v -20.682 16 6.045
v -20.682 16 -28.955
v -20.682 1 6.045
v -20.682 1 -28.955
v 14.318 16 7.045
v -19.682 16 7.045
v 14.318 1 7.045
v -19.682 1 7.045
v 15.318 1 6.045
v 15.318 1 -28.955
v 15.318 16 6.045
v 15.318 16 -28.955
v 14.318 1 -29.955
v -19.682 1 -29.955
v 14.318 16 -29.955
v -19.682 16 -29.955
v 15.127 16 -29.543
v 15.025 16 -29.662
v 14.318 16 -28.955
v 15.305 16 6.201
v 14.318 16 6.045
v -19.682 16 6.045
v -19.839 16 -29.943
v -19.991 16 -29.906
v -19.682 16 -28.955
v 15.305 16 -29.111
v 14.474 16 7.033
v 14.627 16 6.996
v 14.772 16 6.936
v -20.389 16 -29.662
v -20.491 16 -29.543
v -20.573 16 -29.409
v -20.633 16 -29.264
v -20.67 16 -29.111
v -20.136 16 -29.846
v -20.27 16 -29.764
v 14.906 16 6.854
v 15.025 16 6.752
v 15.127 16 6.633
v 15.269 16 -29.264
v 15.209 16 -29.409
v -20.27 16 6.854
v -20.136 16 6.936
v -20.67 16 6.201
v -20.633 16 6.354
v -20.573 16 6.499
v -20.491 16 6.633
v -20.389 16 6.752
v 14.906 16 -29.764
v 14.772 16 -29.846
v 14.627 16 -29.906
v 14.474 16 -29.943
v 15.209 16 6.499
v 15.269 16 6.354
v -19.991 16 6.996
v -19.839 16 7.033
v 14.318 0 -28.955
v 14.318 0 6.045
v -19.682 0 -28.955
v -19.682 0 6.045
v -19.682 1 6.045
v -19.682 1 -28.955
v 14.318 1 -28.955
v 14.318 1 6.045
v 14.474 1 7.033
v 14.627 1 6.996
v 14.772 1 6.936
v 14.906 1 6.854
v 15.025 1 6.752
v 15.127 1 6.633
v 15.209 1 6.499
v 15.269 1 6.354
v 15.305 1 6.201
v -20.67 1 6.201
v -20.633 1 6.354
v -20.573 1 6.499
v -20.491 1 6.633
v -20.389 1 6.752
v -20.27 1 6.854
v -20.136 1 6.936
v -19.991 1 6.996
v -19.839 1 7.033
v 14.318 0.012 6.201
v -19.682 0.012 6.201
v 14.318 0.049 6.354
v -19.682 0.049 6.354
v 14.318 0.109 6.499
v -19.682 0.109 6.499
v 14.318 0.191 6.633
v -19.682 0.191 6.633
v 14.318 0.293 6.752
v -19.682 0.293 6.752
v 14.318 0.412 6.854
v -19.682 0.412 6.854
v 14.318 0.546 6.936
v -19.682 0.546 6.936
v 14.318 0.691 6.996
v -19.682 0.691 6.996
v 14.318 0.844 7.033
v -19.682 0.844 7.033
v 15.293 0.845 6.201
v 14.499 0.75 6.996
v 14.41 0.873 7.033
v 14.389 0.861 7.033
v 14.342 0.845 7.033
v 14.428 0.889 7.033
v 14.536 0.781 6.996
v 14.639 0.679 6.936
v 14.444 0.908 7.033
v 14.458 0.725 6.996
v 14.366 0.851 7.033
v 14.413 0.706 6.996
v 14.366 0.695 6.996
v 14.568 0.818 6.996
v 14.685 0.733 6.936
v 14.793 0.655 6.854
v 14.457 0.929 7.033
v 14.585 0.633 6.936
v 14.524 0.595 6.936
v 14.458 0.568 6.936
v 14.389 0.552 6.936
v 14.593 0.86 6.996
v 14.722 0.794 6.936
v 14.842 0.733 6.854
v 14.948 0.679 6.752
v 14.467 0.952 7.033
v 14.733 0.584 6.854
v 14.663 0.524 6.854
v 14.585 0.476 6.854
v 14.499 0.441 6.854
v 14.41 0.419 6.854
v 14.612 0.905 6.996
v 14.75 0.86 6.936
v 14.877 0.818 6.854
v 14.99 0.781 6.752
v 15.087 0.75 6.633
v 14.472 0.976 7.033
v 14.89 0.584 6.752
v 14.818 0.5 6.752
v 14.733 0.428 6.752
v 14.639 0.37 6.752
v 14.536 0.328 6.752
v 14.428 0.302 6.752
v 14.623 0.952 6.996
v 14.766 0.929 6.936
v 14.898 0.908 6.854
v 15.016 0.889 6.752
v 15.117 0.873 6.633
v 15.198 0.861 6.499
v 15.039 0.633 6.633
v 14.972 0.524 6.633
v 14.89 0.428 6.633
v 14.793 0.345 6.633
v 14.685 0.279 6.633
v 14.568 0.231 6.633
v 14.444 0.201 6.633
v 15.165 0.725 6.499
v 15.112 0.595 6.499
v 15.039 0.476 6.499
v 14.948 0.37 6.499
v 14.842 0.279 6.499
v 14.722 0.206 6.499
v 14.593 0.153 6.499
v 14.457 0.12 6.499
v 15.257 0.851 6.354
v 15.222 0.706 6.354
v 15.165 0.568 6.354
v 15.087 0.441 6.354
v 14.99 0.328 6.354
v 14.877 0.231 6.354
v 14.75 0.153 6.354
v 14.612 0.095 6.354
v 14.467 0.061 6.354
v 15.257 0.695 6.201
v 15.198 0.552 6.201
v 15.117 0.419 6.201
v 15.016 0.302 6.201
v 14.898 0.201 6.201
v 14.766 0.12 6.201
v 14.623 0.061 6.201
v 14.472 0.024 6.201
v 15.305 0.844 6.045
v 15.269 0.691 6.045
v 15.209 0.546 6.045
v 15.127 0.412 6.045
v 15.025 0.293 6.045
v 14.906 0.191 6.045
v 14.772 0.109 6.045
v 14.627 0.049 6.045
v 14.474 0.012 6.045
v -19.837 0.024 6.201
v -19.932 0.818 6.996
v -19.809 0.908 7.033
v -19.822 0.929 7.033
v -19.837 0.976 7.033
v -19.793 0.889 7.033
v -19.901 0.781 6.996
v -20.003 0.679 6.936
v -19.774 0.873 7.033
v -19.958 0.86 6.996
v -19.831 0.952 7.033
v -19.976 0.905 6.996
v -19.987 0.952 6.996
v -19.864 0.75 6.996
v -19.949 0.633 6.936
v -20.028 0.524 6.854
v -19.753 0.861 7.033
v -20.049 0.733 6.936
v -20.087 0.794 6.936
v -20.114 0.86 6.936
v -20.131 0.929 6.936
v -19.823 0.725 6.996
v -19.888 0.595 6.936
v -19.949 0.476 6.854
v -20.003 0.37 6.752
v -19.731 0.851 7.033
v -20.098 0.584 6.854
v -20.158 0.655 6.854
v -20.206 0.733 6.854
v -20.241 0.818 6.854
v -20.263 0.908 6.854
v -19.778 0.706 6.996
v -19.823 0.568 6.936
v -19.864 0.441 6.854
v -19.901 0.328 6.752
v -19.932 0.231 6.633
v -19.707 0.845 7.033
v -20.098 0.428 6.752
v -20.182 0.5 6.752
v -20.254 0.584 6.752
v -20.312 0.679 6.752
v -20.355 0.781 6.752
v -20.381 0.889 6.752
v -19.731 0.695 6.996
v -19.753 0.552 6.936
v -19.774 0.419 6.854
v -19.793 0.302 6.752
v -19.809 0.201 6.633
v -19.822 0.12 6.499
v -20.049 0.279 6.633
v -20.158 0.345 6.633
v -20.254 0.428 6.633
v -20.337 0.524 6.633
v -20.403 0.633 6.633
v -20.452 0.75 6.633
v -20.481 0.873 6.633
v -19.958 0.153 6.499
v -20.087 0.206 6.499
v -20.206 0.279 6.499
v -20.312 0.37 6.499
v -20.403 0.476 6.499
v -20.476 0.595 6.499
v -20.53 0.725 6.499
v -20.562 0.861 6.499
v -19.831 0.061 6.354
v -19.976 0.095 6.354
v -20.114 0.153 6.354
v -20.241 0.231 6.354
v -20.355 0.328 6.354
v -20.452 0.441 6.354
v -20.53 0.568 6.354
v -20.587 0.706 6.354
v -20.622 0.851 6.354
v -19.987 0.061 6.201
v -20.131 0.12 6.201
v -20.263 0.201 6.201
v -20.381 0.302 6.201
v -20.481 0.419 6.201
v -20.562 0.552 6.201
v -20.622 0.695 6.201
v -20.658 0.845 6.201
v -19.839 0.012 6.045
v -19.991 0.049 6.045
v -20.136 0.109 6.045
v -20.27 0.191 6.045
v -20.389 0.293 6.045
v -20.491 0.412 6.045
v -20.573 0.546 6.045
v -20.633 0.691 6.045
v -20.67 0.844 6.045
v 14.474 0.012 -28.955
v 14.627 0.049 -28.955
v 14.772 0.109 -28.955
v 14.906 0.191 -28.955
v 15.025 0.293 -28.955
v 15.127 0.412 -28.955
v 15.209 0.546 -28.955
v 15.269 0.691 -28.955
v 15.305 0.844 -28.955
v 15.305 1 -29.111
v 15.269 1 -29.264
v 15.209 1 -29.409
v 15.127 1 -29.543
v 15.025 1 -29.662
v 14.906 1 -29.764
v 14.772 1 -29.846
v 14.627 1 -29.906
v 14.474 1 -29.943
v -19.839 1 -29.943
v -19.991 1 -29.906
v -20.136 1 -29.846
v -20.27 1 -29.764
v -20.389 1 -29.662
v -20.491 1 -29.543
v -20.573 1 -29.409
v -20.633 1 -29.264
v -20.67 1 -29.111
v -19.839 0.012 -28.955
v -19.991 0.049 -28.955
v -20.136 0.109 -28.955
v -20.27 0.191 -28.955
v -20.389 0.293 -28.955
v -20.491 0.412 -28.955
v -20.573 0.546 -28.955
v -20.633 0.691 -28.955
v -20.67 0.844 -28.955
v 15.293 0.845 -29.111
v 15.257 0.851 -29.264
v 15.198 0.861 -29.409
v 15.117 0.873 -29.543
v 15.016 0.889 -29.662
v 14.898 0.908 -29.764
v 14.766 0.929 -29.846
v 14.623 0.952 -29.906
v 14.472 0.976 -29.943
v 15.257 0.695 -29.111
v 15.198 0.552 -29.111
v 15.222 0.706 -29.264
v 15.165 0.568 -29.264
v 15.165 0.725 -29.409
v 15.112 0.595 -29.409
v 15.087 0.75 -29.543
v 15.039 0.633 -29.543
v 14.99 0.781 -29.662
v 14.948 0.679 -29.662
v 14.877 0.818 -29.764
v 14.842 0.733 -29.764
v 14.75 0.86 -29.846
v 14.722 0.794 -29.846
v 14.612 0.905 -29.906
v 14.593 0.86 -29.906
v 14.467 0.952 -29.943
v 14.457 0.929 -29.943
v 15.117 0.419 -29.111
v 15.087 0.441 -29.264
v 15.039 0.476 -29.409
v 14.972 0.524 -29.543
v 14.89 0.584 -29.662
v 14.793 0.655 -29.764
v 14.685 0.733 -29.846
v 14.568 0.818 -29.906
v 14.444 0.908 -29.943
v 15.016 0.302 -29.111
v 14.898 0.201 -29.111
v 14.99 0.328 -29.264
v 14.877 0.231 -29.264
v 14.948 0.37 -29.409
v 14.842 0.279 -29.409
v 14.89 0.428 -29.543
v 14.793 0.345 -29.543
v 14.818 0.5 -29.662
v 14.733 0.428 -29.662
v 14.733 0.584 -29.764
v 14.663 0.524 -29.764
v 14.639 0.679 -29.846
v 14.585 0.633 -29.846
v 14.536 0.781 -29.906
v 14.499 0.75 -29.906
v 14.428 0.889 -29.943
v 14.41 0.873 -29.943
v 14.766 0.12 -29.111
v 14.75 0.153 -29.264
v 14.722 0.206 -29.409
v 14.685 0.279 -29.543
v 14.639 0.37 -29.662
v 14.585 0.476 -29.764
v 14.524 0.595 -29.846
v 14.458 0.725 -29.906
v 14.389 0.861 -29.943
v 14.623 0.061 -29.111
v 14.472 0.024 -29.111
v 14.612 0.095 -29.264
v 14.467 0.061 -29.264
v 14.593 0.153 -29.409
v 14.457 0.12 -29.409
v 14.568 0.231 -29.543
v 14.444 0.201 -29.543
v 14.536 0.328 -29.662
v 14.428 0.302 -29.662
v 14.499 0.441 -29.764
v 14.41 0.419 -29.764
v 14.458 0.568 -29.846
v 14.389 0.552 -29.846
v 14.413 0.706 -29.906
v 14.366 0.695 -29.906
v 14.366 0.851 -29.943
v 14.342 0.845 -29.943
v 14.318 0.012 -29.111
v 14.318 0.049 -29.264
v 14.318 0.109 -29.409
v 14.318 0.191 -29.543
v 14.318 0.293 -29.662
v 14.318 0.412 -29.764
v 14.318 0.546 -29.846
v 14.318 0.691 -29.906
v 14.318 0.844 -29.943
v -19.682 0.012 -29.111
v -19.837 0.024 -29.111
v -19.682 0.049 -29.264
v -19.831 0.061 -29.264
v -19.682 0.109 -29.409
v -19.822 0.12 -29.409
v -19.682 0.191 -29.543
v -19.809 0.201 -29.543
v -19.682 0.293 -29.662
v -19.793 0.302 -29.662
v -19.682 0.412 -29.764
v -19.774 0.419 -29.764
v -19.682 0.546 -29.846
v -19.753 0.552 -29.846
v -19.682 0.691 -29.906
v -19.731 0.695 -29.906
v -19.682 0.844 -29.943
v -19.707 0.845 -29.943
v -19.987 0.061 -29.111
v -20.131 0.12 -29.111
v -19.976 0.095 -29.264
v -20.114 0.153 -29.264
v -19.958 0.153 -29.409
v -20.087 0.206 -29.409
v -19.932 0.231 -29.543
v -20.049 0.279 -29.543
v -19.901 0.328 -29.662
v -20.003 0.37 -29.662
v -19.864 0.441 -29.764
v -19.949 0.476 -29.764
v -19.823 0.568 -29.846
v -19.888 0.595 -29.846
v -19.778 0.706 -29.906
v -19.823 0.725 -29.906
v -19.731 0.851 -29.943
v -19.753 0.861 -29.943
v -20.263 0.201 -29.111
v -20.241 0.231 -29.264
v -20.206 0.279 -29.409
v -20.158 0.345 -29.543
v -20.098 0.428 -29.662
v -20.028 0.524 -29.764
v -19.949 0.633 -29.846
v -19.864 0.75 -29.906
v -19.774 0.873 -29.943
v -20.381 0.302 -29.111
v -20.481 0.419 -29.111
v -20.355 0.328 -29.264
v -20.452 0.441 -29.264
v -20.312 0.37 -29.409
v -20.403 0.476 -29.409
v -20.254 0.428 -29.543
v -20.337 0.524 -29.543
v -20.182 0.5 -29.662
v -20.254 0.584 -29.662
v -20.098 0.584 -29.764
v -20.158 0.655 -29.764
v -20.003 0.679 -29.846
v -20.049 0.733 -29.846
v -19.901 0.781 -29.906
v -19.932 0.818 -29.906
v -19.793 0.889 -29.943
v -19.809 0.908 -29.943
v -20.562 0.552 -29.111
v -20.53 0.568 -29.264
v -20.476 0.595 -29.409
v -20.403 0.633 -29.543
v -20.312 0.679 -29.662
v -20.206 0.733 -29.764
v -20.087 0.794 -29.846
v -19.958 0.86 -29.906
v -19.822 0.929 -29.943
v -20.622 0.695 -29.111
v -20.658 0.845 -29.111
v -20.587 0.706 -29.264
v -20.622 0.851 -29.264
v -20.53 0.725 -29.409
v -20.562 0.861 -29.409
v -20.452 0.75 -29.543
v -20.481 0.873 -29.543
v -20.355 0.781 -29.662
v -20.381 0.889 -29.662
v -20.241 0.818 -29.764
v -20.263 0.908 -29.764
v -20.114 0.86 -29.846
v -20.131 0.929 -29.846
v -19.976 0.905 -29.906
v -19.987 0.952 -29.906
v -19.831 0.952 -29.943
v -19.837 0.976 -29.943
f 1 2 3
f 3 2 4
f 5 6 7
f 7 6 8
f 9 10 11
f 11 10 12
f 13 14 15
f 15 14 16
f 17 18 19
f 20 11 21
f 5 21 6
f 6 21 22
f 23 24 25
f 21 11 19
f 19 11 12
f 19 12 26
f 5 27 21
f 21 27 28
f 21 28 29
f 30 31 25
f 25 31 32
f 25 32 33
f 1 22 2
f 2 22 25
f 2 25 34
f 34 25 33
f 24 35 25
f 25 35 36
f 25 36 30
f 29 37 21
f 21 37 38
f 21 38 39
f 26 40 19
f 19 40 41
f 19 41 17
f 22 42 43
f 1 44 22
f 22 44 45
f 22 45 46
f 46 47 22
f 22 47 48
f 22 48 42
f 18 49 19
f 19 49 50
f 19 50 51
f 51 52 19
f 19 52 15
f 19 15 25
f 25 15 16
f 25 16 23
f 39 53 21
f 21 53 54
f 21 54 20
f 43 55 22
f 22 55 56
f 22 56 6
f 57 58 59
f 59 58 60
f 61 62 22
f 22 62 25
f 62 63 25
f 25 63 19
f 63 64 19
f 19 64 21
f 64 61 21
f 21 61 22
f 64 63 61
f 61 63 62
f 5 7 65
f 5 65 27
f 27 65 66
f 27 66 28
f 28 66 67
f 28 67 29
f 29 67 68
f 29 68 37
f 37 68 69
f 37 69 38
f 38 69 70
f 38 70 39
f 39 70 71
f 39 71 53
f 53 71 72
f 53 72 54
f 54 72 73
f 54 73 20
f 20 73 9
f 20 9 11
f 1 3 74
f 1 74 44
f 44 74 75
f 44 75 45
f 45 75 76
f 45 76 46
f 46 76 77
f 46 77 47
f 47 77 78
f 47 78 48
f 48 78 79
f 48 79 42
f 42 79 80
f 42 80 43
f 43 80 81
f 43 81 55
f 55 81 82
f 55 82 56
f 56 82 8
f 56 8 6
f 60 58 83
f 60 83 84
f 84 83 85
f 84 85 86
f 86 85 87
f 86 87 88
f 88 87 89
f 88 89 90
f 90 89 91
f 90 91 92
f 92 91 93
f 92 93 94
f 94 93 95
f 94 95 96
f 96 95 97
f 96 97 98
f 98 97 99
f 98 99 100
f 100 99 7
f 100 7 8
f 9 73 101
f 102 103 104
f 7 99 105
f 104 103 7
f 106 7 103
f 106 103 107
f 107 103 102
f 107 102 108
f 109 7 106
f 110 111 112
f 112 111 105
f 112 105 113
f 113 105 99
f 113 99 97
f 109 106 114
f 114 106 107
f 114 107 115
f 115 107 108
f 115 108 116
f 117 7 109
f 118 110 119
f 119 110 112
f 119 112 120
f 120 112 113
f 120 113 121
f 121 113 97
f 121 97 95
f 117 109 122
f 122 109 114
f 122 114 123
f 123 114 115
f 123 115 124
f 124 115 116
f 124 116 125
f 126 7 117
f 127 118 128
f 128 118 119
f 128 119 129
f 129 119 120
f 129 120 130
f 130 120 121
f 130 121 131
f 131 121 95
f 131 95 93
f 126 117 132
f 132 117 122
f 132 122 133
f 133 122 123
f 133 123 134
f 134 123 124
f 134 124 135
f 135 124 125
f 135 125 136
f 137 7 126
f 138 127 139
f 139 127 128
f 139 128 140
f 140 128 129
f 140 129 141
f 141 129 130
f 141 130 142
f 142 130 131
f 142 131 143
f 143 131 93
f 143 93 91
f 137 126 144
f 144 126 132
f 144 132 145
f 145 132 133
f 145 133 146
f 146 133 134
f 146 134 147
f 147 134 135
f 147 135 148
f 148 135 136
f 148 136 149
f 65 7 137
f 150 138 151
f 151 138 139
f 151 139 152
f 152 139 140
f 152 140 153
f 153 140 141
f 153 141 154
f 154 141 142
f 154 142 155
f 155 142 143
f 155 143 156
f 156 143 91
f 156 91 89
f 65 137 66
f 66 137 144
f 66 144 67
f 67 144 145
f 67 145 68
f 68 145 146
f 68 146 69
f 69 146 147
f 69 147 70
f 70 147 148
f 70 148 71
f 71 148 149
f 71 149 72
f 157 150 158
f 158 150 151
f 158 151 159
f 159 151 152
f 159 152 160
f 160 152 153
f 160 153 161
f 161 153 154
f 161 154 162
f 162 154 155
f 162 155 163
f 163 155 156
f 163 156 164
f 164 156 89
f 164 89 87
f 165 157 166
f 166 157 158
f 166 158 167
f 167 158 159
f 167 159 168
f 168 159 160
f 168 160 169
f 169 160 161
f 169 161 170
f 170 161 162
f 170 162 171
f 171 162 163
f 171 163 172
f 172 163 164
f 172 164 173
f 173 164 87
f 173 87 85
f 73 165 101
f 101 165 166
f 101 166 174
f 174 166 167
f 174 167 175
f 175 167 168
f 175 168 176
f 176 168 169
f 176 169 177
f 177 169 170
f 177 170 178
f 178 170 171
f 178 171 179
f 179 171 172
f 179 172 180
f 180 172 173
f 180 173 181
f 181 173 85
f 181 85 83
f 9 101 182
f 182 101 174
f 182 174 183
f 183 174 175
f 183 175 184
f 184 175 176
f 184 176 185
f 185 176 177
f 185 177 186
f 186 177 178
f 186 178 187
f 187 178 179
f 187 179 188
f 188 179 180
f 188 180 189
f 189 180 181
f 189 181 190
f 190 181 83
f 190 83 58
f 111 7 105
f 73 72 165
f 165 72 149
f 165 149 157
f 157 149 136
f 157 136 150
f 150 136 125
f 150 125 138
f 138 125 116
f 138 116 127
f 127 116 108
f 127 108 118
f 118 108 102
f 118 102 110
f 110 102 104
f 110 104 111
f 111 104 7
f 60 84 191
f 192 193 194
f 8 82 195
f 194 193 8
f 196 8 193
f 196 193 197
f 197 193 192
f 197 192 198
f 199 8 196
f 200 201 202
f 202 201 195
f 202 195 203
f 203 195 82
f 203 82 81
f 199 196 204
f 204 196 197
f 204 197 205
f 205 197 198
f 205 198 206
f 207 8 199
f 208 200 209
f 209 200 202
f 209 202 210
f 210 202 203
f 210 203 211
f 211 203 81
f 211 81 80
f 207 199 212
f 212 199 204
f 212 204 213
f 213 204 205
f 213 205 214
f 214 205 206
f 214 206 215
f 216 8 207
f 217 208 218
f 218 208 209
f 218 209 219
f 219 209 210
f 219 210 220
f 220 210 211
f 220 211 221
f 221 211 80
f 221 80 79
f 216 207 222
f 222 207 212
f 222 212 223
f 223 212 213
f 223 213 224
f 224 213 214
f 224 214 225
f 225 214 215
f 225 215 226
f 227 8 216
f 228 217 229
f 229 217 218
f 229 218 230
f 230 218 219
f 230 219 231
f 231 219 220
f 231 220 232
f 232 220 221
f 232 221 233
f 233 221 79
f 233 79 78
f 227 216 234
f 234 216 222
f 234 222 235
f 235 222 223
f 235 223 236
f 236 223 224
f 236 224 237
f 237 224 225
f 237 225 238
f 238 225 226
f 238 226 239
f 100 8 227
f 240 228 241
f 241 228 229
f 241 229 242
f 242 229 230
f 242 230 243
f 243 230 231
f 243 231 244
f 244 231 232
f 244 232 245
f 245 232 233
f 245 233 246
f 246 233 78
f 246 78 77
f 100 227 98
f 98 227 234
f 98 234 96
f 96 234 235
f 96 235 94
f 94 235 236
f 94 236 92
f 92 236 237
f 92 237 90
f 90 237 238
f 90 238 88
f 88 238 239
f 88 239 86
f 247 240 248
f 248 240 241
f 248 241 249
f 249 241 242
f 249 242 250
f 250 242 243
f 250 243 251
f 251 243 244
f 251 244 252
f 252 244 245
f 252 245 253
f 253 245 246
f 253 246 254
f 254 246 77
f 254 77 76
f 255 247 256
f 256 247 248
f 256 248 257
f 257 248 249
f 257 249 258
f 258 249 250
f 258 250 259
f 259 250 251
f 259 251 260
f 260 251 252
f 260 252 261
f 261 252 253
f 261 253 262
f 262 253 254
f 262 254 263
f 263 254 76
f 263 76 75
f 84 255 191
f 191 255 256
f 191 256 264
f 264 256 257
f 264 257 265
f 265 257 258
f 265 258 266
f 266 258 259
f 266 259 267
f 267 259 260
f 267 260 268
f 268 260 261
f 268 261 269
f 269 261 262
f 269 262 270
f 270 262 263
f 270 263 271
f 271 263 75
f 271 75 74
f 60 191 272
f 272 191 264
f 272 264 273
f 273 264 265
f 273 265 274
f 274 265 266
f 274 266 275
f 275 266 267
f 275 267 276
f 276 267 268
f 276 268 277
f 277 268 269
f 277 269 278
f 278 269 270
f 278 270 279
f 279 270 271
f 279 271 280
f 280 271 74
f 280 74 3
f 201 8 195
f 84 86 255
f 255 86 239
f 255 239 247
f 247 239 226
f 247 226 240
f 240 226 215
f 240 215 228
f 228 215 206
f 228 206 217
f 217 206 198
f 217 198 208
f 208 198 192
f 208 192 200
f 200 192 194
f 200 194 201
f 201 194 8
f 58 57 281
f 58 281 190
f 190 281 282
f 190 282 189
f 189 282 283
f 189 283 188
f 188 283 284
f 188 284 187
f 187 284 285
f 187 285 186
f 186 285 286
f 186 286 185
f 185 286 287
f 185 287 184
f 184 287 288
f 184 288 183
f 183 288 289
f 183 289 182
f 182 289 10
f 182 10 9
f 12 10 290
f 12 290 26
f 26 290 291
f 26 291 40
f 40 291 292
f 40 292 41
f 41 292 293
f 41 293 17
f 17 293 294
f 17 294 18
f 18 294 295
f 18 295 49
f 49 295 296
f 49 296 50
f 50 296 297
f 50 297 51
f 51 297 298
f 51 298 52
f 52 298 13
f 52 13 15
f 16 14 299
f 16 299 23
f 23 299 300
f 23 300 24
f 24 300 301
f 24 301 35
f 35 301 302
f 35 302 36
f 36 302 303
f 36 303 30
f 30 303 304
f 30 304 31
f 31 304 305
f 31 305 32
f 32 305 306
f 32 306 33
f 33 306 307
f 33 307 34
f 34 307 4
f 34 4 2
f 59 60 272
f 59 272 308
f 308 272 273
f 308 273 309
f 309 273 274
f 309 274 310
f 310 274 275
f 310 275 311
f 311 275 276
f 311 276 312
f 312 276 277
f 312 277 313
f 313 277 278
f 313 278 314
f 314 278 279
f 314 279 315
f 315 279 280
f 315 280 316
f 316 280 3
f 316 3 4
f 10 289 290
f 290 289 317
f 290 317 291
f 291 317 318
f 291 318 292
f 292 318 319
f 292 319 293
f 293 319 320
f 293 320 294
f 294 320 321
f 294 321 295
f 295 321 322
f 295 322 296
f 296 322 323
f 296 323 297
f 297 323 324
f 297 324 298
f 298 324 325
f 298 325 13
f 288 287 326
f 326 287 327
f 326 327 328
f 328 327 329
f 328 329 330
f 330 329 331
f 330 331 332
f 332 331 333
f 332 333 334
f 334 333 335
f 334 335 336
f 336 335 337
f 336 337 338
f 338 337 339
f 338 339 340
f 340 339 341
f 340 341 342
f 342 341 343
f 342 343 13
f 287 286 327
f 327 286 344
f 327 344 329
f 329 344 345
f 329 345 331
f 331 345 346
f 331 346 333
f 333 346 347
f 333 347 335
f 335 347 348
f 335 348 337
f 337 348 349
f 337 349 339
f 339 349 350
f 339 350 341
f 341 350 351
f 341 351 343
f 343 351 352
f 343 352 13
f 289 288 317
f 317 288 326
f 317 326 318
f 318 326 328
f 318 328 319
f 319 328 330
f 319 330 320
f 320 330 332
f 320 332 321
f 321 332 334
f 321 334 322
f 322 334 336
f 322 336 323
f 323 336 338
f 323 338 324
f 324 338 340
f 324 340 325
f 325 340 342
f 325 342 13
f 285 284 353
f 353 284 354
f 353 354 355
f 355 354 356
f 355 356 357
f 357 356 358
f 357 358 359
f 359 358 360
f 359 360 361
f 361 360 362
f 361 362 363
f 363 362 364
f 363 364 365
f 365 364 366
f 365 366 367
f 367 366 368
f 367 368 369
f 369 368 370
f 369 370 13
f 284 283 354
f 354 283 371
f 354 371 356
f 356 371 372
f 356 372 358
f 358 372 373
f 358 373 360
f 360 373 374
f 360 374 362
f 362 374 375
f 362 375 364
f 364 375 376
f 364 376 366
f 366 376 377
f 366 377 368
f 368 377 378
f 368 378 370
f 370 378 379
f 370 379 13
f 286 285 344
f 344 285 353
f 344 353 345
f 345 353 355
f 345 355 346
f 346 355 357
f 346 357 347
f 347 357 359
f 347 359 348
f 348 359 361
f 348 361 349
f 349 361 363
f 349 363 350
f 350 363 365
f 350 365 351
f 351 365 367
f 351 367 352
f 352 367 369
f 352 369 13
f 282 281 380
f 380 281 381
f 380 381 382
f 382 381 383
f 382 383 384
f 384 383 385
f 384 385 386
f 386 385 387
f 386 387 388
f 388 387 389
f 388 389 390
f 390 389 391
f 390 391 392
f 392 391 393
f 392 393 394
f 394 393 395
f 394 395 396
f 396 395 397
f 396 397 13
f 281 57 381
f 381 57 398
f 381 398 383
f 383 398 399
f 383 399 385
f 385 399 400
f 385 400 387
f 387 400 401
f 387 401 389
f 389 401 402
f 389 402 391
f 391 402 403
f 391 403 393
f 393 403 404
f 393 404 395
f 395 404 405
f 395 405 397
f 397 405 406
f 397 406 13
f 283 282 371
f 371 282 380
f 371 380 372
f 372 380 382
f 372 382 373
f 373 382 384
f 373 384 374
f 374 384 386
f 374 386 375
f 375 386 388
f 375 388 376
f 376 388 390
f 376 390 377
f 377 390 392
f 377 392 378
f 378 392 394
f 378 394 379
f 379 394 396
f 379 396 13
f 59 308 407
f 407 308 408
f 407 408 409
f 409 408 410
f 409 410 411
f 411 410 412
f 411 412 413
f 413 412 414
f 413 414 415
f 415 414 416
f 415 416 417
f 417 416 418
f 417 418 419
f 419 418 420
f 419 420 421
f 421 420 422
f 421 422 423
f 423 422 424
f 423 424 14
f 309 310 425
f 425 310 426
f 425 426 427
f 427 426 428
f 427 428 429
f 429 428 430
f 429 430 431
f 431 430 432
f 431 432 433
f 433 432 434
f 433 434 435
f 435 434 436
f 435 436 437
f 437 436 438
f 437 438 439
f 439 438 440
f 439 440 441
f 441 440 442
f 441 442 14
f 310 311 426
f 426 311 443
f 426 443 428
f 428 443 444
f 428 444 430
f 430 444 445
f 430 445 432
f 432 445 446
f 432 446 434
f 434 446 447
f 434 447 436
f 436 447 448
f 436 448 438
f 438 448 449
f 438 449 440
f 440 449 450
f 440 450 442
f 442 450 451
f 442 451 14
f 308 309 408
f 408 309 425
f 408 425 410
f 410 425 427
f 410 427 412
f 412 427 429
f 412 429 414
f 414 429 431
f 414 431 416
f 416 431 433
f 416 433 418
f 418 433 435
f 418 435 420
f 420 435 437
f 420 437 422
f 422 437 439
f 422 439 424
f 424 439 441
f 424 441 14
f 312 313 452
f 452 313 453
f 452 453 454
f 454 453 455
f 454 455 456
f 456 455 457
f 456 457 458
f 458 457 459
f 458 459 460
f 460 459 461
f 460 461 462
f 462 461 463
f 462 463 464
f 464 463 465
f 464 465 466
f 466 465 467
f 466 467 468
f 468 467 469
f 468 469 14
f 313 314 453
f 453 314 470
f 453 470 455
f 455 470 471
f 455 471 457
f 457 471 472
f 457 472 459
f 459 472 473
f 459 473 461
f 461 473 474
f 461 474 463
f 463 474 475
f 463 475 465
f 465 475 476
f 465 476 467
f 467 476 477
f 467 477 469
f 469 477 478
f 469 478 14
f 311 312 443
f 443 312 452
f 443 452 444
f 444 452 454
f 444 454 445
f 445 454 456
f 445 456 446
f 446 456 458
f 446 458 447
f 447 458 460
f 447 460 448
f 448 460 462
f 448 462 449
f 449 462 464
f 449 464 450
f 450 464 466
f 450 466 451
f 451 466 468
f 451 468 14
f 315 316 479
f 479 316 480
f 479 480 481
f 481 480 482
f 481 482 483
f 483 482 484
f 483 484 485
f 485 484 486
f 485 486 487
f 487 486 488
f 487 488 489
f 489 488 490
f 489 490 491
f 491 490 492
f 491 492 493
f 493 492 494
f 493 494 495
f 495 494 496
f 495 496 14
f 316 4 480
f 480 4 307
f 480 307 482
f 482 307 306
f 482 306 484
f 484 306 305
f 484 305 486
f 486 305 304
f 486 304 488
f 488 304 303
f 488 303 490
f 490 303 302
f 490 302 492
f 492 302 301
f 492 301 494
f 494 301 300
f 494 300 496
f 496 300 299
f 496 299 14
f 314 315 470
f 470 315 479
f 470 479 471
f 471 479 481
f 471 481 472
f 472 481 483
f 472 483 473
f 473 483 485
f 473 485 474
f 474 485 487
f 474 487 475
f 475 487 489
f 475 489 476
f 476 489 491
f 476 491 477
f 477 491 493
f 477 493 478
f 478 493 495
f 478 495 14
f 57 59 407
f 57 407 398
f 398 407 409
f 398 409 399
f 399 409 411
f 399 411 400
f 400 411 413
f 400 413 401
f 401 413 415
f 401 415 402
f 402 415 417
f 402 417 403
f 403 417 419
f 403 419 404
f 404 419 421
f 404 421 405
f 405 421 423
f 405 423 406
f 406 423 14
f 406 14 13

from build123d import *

# Parameters (mm, degrees)
SKETCH_1_W          = 36
SKETCH_1_H          = 37
EXTRUDE_2_DEPTH     = 16
SKETCH_2_W          = 34
SKETCH_2_H          = 35
CUT_EXTRUDE_1_DEPTH = 15
FILLET_1_R          = 1


with BuildPart() as part:
    # ｽｹｯﾁ1 → ﾎﾞｽ - 押し出し2 (new body)
    with BuildSketch(Plane(origin=(0, 0, 0), x_dir=(1, 0, 0), z_dir=(0, 1, 0))):
        with Locations((-2.682211452, 11.454993769)):
            Rectangle(SKETCH_1_W, SKETCH_1_H)
    extrude(amount=EXTRUDE_2_DEPTH)

    # ｽｹｯﾁ2 → ｶｯﾄ - 押し出し1 (cut)
    with BuildSketch(Plane(origin=(0, 16, 0), x_dir=(1, 0, 0), z_dir=(0, 1, 0))):
        with Locations((-2.682211452, 11.454993769)):
            Rectangle(SKETCH_2_W, SKETCH_2_H)
    extrude(amount=-CUT_EXTRUDE_1_DEPTH, mode=Mode.SUBTRACT)

    # ﾌｨﾚｯﾄ1
    fillet_1_edges = [part.edges().sort_by_distance(p)[0] for p in [
        (-2.682211452, 0, -29.954993769),
        (15.317788548, 0, -11.454993769),
        (-2.682211452, 0, 7.045006231),
        (-20.682211452, 0, -11.454993769),
        (-20.682211452, 8, -29.954993769),
        (15.317788548, 8, -29.954993769),
        (15.317788548, 8, 7.045006231),
        (-20.682211452, 8, 7.045006231),
    ]]
    fillet(fillet_1_edges, radius=FILLET_1_R)


solid = part.part
